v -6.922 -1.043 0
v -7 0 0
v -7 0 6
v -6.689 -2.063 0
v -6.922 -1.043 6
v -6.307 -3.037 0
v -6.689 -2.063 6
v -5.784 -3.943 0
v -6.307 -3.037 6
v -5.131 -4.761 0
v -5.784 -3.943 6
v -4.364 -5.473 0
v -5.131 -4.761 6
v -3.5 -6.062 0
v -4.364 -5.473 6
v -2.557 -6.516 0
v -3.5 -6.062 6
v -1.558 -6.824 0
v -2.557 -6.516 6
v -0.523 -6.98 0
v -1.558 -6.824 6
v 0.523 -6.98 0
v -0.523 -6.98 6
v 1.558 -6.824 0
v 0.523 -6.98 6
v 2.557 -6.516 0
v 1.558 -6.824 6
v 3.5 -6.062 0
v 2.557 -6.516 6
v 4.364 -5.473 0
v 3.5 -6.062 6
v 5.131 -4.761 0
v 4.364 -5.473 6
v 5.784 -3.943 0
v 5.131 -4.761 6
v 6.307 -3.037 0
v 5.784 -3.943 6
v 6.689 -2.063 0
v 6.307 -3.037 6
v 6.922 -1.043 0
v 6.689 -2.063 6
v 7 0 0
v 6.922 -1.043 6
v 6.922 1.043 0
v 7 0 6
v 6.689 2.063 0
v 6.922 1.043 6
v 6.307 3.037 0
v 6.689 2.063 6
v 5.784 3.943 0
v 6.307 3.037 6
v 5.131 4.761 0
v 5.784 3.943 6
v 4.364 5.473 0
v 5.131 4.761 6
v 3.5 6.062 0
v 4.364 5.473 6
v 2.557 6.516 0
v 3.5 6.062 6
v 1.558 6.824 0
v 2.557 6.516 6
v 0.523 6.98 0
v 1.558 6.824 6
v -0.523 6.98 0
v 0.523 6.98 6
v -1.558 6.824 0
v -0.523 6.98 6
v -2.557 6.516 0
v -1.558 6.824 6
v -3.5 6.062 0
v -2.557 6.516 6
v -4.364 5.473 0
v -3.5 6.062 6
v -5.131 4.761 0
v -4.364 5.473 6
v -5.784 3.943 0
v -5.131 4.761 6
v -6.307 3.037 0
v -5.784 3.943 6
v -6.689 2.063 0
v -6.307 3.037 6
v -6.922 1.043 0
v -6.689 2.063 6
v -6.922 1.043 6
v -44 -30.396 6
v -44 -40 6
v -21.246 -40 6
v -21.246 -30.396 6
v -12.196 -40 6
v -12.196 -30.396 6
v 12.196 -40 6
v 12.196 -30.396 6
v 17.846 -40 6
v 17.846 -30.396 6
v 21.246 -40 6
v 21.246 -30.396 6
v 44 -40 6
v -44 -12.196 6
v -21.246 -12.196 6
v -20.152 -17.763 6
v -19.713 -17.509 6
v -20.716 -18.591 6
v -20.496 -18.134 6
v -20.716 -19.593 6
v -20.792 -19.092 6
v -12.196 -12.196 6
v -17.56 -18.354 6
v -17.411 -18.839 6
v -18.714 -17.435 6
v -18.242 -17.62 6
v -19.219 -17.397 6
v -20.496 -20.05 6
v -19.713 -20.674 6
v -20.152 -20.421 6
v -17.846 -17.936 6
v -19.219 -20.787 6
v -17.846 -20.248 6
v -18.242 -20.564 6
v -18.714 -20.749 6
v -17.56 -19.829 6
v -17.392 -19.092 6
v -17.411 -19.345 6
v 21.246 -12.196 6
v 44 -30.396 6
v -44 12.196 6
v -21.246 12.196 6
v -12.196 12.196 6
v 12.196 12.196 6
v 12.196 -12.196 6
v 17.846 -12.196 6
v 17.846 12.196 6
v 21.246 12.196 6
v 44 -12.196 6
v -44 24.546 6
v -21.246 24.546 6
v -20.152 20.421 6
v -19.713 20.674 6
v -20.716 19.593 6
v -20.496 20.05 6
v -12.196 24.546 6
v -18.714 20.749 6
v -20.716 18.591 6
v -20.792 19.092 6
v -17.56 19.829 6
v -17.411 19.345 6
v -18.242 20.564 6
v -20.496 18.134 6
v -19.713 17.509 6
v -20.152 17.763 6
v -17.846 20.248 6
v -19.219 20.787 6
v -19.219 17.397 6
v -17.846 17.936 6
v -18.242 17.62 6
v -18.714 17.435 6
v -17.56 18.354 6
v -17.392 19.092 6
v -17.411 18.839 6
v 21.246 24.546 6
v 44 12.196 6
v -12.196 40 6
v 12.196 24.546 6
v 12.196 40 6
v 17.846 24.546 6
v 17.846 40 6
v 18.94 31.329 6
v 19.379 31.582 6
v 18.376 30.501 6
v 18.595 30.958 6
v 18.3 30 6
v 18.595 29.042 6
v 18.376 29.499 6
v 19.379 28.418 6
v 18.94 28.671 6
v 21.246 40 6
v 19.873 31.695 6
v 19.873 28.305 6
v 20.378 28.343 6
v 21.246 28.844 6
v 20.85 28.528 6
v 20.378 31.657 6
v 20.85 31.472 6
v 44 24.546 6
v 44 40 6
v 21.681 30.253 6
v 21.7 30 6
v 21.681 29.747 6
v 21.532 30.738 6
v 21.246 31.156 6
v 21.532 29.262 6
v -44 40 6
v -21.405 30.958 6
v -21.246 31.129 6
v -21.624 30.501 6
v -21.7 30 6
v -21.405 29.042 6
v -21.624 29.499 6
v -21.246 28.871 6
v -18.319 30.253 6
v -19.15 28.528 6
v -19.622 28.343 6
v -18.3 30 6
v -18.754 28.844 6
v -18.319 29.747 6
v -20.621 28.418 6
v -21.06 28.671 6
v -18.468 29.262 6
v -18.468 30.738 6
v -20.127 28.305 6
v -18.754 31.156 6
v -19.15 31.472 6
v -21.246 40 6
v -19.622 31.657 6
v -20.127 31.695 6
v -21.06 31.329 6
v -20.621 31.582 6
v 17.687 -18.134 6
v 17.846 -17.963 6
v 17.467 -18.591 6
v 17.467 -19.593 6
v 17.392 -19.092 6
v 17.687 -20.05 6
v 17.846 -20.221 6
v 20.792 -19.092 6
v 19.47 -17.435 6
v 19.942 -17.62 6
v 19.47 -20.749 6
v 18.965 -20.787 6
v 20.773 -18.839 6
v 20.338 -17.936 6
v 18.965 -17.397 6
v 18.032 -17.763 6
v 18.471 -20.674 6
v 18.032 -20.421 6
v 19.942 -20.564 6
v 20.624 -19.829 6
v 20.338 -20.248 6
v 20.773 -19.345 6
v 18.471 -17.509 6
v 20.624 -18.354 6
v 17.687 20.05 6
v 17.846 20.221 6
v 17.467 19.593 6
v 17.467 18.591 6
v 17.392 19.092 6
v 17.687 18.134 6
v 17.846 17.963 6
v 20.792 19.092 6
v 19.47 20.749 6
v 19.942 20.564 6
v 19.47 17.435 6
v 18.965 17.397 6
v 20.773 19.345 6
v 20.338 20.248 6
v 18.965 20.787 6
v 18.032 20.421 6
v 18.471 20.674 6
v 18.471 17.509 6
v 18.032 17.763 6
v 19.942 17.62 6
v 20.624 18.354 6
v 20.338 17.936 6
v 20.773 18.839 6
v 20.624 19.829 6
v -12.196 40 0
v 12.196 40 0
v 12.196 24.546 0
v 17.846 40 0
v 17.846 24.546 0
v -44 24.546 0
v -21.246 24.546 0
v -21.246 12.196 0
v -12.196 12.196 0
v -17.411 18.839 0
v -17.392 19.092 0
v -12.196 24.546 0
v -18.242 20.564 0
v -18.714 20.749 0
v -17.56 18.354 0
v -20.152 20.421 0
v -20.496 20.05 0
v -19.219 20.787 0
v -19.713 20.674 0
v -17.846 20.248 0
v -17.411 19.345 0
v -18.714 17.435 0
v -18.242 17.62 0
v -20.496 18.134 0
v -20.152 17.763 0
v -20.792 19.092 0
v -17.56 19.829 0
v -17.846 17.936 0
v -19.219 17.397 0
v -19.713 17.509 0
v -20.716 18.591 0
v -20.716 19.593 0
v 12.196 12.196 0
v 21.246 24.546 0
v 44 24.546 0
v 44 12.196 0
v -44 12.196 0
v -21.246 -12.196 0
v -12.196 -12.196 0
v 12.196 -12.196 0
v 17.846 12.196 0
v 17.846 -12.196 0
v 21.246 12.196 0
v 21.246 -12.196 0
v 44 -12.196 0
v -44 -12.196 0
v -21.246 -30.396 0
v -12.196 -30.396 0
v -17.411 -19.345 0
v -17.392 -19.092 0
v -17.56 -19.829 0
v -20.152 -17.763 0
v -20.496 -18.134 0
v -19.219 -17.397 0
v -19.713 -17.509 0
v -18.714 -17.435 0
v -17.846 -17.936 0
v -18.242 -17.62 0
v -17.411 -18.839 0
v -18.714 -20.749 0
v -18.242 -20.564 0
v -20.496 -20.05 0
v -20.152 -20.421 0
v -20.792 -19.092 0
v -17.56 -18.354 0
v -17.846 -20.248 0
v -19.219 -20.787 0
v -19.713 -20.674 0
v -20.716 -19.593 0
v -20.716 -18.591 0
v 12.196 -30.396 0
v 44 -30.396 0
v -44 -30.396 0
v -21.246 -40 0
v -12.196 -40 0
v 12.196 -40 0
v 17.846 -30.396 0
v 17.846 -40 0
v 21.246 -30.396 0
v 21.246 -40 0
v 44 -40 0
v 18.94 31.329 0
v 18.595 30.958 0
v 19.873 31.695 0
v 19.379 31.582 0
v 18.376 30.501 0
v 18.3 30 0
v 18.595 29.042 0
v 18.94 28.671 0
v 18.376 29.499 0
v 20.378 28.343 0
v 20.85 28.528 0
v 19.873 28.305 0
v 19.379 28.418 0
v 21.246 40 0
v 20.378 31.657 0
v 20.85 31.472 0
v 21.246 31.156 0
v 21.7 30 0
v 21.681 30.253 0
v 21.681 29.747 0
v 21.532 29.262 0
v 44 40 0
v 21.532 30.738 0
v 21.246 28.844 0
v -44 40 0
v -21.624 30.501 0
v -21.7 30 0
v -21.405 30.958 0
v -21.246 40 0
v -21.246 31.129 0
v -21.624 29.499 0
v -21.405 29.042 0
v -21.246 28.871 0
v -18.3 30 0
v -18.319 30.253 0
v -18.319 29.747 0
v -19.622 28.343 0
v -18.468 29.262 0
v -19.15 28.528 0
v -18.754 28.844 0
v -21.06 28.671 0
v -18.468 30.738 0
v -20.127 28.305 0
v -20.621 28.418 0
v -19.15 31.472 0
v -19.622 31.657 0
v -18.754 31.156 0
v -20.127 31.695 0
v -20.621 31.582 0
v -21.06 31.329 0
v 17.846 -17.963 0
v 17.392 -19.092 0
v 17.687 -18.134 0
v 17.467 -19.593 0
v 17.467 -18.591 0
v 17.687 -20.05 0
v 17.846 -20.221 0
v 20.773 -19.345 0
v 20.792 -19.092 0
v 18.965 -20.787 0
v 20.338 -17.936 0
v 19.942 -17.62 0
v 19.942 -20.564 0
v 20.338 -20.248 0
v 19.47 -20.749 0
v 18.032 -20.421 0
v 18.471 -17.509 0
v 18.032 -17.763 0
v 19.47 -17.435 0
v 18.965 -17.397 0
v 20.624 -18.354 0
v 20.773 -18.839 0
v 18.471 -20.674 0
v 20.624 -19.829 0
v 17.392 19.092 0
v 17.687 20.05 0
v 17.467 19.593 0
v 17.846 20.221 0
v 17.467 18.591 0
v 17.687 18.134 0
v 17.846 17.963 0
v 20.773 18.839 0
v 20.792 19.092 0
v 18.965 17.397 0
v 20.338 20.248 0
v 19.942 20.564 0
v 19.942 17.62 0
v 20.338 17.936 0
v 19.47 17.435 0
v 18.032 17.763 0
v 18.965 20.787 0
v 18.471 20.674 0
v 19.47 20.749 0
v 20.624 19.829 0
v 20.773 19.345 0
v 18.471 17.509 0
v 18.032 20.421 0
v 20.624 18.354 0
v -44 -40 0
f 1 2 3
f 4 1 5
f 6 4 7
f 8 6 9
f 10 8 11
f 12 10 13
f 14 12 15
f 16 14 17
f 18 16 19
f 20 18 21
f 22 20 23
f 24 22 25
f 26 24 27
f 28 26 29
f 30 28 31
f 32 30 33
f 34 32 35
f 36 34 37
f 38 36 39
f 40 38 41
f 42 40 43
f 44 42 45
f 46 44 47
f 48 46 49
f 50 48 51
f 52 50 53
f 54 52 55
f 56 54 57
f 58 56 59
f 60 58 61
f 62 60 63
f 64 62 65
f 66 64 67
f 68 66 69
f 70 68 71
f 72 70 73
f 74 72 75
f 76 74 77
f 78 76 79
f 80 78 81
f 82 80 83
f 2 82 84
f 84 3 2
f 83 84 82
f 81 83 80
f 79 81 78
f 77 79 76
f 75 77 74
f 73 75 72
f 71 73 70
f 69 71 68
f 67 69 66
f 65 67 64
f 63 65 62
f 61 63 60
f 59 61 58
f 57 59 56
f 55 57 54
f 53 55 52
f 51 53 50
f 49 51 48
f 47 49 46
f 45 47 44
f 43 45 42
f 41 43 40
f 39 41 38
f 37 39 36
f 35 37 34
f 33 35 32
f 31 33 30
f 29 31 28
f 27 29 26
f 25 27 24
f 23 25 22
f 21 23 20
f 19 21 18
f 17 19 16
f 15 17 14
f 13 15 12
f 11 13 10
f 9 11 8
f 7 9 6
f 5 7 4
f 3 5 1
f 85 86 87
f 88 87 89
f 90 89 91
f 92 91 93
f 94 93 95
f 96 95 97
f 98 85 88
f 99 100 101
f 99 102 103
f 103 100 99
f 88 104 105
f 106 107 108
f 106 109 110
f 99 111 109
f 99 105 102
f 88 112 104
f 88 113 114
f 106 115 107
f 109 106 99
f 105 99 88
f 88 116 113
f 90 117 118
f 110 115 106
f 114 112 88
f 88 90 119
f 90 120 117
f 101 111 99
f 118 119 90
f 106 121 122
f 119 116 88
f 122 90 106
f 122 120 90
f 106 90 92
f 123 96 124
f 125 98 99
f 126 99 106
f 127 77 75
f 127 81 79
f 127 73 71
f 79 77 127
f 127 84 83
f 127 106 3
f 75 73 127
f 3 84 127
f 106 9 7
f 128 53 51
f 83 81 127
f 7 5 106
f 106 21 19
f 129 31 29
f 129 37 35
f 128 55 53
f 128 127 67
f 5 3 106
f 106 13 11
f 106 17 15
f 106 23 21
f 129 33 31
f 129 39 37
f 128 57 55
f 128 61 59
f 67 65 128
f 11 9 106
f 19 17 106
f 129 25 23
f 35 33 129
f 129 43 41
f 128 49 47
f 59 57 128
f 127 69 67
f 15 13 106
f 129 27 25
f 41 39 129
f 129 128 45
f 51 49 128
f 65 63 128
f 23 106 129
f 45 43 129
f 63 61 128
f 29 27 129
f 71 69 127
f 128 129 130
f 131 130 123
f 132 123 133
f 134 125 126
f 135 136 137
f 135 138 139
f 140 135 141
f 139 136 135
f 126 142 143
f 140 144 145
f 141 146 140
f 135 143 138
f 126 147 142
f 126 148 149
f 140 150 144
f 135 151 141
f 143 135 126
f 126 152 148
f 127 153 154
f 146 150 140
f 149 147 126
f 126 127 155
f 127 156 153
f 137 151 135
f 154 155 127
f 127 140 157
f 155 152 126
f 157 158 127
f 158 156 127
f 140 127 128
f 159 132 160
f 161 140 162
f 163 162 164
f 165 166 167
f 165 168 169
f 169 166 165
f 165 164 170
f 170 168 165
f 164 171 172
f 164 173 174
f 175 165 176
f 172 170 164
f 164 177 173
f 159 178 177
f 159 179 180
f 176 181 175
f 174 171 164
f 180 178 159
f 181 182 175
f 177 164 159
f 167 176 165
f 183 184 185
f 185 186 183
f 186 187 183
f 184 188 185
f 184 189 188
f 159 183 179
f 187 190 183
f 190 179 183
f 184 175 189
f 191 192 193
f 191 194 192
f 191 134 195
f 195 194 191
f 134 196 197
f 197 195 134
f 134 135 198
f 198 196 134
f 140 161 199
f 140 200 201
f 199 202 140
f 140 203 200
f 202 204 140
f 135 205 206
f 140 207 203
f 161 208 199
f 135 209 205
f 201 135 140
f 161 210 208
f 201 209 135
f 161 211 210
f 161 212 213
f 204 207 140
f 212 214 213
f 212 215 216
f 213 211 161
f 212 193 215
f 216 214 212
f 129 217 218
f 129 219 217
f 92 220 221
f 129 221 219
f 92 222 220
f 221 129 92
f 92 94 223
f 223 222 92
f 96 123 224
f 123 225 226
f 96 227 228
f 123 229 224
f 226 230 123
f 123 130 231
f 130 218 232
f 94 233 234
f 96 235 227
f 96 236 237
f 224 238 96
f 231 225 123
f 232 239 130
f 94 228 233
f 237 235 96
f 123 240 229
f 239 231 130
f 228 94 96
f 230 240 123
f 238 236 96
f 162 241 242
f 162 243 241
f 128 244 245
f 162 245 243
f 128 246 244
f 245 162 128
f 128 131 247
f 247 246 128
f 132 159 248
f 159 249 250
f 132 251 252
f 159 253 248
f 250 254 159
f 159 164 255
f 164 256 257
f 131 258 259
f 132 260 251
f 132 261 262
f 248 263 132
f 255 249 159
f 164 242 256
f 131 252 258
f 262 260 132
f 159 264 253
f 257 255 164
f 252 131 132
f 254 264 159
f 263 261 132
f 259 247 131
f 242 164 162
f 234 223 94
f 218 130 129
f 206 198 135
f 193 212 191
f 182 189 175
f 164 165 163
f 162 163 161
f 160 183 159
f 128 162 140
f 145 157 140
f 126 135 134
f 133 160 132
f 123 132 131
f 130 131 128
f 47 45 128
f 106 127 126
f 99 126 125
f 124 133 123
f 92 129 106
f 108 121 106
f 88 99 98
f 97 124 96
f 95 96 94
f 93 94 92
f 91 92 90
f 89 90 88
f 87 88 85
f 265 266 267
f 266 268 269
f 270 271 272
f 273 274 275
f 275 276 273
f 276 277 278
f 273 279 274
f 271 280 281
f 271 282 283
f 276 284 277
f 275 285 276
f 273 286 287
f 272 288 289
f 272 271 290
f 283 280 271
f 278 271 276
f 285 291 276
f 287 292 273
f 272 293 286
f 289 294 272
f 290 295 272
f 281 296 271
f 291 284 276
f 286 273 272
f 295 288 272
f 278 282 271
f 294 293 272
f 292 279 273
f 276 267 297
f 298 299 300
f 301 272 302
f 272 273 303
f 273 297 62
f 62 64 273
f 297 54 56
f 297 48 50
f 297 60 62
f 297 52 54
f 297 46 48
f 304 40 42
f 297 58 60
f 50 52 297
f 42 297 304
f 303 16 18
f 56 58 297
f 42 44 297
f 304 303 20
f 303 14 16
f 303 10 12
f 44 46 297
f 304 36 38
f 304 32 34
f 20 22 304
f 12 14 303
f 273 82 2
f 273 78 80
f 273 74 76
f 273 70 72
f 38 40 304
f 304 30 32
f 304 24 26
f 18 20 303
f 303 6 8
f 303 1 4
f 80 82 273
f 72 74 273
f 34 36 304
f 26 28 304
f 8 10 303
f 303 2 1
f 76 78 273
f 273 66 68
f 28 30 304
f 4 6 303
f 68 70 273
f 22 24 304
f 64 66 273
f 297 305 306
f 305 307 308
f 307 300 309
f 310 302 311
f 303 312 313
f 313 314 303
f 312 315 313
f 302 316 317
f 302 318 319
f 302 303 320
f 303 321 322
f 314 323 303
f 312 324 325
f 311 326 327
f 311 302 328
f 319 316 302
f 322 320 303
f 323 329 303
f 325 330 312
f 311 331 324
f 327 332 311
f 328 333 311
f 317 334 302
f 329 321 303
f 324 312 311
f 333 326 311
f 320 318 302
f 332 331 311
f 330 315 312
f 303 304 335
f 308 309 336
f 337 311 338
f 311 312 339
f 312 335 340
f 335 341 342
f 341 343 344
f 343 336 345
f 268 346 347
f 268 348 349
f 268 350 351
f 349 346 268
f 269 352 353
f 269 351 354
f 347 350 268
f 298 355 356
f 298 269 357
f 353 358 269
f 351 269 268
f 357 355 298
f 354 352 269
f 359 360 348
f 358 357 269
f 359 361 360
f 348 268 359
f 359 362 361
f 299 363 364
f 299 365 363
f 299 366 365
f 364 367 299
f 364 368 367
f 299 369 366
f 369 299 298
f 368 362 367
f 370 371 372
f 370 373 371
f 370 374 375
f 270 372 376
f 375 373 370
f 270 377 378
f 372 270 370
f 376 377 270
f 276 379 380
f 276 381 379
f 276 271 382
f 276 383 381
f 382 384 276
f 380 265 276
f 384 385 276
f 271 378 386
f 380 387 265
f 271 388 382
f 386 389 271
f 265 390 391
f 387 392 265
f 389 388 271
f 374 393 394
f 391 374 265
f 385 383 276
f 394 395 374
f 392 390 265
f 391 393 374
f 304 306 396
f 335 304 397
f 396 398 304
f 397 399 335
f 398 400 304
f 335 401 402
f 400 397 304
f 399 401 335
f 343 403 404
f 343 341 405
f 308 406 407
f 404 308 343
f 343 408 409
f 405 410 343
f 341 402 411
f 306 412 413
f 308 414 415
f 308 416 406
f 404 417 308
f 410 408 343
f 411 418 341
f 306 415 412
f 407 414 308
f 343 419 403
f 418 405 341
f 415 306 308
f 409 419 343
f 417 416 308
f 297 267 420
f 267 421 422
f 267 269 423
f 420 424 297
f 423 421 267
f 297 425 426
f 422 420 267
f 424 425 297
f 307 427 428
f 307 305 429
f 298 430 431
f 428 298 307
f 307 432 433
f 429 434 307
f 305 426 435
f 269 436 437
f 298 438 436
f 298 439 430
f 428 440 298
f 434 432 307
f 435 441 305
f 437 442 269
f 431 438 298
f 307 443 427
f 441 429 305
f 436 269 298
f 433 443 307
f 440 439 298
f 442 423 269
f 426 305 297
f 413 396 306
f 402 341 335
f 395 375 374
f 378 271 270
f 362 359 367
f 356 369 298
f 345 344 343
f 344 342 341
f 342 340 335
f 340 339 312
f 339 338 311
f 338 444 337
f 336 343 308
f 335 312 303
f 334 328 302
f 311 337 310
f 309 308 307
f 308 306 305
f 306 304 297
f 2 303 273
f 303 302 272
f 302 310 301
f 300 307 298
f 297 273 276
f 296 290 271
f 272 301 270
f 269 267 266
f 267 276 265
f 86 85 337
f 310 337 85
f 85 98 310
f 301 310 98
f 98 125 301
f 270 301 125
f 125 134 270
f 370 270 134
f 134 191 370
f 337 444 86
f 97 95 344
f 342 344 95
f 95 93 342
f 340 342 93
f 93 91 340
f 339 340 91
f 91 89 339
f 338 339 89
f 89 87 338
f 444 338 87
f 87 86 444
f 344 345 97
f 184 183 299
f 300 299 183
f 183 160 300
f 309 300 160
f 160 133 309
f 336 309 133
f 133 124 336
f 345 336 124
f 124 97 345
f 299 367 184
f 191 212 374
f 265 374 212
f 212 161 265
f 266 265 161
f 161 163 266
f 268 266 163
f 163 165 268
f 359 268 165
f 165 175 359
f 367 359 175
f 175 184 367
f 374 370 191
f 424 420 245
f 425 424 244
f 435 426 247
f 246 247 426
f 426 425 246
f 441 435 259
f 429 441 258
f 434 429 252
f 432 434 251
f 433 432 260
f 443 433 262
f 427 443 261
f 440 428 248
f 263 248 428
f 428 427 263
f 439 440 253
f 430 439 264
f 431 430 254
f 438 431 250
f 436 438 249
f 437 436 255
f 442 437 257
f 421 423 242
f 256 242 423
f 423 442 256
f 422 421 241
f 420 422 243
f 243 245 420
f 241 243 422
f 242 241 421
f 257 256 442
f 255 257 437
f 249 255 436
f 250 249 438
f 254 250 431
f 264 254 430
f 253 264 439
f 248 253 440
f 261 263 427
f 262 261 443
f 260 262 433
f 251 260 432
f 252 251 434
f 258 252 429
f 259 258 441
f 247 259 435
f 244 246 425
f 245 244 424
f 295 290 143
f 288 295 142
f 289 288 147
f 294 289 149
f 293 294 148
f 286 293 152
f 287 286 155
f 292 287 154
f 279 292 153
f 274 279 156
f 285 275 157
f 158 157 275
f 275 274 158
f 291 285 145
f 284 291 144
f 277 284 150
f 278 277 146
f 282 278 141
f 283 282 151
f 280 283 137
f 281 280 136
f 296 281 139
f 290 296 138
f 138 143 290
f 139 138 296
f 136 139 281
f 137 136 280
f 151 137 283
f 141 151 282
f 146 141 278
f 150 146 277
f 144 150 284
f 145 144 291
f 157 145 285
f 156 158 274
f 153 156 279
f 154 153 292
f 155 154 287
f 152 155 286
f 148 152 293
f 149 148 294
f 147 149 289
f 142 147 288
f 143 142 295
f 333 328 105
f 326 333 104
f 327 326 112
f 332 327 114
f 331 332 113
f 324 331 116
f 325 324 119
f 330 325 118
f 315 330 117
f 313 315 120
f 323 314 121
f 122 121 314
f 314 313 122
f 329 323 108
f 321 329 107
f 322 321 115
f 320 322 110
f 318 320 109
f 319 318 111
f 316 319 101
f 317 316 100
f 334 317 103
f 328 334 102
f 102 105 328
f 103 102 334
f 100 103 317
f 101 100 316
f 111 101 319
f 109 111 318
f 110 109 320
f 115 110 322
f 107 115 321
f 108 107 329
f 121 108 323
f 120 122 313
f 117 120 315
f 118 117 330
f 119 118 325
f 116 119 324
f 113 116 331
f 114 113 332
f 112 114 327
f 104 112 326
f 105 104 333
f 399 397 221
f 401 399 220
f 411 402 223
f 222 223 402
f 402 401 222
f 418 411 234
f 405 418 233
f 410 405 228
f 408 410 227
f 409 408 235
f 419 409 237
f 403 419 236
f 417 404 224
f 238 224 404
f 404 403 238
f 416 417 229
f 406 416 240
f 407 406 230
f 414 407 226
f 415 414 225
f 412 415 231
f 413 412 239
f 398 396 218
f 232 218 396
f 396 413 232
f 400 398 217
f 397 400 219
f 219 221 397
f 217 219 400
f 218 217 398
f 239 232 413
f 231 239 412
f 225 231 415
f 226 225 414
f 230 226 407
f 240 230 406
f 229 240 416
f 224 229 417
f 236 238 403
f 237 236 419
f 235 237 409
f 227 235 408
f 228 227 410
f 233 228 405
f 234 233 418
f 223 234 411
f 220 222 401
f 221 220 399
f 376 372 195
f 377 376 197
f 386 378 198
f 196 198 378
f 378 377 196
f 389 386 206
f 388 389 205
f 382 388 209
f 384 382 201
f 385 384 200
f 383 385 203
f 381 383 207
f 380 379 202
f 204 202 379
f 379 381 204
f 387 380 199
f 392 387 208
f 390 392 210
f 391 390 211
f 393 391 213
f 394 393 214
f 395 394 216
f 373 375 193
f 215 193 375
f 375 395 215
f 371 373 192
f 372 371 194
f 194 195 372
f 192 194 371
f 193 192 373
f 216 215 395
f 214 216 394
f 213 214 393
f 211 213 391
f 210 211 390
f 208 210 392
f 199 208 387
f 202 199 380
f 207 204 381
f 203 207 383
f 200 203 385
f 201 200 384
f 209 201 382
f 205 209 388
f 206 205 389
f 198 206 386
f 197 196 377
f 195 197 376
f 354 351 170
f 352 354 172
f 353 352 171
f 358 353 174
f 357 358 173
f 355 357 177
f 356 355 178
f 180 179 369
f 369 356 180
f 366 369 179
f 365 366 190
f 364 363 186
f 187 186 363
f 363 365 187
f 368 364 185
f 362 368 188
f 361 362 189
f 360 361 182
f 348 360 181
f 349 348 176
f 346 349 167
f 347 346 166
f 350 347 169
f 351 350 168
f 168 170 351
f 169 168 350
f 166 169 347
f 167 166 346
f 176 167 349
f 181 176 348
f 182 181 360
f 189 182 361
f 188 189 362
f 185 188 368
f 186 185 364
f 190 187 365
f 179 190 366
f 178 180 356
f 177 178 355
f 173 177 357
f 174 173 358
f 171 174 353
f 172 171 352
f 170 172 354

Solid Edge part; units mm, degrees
sketch "Sketch1" plane through (0, 0, 0) normal (0, 0, 1) x (1, 0, 0)
  line L0 (-44, -40) -> (44, -40)
  line L1 (44, -40) -> (44, 40)
  line L2 (44, 40) -> (-44, 40)
  line L3 (-44, 40) -> (-44, -40)
  circle A0 centre (0, 0) radius 7
  circle A1 centre (19.0919, 19.0919) radius 1.7
  circle A2 centre (-19.0919, 19.0919) radius 1.7
  circle A3 centre (-19.0919, -19.0919) radius 1.7
  circle A4 centre (19.0919, -19.0919) radius 1.7
  circle A5 centre (-20, 30) radius 1.7
  circle A6 centre (20, 30) radius 1.7
extrude "Protrusion1" add sketch "Sketch1" along normal blind 6
